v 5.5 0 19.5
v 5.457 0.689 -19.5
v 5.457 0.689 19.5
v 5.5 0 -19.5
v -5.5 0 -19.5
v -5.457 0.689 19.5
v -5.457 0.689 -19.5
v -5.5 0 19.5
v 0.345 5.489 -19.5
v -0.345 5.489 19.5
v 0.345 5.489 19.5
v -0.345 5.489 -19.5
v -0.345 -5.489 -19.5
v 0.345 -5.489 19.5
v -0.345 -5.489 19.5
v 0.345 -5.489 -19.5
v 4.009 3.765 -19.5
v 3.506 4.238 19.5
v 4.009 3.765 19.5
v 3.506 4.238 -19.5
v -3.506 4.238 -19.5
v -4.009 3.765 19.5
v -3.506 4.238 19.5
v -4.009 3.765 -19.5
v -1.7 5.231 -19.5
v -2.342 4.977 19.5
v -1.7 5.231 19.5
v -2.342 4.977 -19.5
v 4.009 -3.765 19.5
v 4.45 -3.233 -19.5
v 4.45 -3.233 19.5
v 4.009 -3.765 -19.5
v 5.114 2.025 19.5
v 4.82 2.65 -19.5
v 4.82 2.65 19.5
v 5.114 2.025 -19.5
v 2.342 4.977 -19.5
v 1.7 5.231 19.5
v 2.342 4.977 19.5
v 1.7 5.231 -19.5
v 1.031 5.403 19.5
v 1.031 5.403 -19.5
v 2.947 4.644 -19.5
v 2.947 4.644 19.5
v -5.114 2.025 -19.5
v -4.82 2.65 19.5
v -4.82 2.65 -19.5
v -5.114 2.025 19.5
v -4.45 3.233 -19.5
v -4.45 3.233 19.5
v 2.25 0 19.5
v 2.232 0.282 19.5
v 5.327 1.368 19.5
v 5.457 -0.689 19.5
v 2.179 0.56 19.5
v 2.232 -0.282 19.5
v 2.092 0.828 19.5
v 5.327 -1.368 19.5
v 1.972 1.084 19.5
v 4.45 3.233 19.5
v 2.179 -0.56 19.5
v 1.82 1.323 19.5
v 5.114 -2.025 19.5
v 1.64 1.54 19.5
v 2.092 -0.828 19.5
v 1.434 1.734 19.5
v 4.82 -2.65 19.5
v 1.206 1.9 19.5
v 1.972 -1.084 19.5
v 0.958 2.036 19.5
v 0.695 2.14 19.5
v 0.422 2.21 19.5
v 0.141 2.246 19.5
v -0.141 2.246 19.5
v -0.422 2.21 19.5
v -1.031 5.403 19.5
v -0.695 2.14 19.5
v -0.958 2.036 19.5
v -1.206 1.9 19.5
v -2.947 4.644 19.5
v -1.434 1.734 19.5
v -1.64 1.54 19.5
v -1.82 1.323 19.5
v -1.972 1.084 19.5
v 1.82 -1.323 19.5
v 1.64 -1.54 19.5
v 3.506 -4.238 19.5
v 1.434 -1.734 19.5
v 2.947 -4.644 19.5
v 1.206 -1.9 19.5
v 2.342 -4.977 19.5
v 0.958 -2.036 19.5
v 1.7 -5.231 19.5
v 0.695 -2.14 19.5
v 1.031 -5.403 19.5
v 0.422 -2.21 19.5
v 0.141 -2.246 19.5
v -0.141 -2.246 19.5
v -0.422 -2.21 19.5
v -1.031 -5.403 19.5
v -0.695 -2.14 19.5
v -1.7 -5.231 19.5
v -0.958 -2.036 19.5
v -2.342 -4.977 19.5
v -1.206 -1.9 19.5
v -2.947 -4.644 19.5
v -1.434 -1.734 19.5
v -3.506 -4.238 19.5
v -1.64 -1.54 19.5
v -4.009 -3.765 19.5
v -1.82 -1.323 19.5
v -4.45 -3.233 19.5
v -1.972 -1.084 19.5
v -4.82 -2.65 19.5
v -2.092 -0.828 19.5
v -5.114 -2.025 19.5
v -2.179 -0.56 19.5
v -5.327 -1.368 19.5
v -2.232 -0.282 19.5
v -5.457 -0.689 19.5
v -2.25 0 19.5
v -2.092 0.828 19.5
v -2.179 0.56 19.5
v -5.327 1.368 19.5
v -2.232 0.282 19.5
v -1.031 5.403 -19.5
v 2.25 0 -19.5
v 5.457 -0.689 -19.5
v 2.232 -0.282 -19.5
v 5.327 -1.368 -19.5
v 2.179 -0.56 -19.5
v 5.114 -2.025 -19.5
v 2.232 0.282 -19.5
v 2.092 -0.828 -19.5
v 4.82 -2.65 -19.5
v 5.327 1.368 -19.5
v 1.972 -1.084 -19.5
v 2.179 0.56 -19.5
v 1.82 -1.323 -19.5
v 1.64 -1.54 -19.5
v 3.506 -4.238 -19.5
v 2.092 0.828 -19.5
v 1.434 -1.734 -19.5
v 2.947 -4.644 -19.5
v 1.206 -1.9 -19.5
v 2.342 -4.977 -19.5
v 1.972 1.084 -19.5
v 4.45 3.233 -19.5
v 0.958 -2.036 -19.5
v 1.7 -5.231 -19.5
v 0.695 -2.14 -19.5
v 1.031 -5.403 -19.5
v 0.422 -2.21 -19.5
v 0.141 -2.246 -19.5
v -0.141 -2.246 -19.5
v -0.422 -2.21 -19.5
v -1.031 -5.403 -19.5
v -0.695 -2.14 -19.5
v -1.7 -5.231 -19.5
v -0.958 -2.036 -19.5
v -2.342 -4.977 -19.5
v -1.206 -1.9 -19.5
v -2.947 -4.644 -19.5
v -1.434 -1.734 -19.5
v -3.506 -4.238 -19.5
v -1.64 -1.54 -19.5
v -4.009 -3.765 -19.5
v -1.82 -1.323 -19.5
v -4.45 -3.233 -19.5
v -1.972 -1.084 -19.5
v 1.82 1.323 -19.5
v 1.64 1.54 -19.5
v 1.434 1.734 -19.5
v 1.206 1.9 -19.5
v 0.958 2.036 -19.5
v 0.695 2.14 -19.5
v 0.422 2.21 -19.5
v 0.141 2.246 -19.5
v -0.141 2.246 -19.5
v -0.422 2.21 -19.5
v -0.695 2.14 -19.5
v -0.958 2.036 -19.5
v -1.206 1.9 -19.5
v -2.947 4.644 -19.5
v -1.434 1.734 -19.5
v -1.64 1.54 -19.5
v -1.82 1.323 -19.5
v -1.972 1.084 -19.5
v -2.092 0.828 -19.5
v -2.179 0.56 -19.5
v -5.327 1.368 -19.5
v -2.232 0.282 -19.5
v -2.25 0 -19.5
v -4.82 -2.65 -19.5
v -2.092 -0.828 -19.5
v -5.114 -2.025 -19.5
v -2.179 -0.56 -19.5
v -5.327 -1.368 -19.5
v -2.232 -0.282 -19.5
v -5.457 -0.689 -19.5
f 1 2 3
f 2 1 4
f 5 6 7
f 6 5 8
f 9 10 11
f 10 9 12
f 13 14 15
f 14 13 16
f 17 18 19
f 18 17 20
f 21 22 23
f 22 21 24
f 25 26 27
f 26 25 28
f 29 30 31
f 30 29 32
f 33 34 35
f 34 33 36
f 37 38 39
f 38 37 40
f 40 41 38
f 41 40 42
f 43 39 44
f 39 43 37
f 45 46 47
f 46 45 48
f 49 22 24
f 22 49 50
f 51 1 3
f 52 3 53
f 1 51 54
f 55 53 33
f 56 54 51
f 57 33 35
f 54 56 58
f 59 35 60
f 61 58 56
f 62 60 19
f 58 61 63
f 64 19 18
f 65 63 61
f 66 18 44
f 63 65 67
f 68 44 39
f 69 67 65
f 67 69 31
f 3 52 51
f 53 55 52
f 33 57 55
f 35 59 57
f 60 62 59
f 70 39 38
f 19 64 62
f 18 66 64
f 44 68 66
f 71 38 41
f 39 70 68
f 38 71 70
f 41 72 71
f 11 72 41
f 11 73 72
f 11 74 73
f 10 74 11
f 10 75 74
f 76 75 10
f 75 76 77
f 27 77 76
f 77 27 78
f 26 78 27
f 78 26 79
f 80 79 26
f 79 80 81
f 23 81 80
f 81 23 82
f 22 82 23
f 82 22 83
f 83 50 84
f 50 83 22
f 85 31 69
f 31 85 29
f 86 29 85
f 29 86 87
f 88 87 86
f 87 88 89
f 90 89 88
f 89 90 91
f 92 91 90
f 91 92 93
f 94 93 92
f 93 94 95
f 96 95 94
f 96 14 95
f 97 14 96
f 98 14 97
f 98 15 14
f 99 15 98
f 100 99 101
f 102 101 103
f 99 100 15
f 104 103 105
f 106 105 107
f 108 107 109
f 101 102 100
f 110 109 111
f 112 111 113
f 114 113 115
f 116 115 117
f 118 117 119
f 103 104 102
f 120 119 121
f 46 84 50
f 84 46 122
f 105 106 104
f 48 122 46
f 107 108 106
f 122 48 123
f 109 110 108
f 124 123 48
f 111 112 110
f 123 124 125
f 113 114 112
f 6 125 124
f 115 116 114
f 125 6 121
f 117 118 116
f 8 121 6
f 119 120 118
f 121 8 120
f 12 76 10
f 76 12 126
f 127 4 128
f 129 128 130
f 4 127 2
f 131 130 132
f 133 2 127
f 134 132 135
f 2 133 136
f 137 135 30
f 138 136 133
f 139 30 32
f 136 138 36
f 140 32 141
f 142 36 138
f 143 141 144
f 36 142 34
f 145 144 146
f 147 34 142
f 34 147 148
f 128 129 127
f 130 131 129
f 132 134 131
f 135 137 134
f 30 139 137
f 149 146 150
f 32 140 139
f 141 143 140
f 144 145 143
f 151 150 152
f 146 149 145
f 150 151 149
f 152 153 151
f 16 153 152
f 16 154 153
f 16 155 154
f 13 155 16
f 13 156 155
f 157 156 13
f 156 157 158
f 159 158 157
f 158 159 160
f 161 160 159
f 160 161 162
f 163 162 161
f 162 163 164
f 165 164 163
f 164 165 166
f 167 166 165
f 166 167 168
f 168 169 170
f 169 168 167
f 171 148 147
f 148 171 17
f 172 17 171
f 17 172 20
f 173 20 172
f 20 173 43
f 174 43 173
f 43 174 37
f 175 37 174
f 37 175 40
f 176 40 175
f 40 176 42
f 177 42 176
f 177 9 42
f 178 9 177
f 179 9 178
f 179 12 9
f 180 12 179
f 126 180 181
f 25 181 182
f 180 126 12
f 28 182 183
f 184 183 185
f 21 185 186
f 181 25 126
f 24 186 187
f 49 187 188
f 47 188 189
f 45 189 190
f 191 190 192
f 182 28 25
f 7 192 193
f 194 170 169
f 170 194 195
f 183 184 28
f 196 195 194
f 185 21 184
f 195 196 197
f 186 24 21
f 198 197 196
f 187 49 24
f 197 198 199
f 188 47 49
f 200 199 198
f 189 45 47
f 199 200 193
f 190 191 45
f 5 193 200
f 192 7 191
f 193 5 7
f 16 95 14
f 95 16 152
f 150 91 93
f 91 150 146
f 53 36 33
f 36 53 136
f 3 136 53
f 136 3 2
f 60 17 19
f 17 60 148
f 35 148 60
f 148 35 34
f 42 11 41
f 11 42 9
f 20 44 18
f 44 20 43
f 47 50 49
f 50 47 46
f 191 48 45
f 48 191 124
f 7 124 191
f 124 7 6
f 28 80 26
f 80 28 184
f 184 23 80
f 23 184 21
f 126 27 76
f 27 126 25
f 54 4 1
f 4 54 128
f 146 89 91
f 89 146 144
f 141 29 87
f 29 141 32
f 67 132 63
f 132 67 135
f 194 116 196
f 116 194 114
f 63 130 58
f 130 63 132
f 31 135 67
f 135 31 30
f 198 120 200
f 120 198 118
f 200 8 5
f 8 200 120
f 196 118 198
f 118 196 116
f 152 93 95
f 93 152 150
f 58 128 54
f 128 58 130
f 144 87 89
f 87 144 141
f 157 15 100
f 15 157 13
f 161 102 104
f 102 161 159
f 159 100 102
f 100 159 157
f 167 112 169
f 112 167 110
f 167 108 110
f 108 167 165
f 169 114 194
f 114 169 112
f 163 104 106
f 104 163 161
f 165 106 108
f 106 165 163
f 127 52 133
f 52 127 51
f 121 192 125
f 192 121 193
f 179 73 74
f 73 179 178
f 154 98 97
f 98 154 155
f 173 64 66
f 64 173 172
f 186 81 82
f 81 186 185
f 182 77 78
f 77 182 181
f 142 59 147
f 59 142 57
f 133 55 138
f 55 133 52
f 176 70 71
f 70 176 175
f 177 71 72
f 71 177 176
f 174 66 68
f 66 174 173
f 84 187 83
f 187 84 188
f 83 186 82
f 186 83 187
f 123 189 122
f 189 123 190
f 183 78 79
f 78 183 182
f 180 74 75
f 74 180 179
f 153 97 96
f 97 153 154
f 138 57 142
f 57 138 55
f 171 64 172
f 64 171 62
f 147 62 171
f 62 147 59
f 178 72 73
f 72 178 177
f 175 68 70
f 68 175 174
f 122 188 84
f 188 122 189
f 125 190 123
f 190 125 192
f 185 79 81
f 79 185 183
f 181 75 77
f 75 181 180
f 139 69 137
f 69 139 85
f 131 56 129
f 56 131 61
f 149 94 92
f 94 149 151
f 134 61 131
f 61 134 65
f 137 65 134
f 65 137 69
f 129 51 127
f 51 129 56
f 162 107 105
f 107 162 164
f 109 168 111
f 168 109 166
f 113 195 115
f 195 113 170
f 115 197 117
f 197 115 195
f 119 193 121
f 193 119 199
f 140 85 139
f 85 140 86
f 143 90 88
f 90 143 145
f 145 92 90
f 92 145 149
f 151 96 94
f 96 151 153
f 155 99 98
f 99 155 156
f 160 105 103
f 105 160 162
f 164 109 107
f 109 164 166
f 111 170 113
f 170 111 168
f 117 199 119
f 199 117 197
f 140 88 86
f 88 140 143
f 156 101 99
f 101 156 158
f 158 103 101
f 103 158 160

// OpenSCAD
$fn = 50;


difference() {
	union() {
		translate(v = [0, 0, -19.5000000000]) {
			cylinder(h = 39, r = 5.5000000000);
		}
	}
	union() {
		translate(v = [0, 0, -100.0000000000]) {
			cylinder(h = 200, r = 2.2500000000);
		}
	}
}
